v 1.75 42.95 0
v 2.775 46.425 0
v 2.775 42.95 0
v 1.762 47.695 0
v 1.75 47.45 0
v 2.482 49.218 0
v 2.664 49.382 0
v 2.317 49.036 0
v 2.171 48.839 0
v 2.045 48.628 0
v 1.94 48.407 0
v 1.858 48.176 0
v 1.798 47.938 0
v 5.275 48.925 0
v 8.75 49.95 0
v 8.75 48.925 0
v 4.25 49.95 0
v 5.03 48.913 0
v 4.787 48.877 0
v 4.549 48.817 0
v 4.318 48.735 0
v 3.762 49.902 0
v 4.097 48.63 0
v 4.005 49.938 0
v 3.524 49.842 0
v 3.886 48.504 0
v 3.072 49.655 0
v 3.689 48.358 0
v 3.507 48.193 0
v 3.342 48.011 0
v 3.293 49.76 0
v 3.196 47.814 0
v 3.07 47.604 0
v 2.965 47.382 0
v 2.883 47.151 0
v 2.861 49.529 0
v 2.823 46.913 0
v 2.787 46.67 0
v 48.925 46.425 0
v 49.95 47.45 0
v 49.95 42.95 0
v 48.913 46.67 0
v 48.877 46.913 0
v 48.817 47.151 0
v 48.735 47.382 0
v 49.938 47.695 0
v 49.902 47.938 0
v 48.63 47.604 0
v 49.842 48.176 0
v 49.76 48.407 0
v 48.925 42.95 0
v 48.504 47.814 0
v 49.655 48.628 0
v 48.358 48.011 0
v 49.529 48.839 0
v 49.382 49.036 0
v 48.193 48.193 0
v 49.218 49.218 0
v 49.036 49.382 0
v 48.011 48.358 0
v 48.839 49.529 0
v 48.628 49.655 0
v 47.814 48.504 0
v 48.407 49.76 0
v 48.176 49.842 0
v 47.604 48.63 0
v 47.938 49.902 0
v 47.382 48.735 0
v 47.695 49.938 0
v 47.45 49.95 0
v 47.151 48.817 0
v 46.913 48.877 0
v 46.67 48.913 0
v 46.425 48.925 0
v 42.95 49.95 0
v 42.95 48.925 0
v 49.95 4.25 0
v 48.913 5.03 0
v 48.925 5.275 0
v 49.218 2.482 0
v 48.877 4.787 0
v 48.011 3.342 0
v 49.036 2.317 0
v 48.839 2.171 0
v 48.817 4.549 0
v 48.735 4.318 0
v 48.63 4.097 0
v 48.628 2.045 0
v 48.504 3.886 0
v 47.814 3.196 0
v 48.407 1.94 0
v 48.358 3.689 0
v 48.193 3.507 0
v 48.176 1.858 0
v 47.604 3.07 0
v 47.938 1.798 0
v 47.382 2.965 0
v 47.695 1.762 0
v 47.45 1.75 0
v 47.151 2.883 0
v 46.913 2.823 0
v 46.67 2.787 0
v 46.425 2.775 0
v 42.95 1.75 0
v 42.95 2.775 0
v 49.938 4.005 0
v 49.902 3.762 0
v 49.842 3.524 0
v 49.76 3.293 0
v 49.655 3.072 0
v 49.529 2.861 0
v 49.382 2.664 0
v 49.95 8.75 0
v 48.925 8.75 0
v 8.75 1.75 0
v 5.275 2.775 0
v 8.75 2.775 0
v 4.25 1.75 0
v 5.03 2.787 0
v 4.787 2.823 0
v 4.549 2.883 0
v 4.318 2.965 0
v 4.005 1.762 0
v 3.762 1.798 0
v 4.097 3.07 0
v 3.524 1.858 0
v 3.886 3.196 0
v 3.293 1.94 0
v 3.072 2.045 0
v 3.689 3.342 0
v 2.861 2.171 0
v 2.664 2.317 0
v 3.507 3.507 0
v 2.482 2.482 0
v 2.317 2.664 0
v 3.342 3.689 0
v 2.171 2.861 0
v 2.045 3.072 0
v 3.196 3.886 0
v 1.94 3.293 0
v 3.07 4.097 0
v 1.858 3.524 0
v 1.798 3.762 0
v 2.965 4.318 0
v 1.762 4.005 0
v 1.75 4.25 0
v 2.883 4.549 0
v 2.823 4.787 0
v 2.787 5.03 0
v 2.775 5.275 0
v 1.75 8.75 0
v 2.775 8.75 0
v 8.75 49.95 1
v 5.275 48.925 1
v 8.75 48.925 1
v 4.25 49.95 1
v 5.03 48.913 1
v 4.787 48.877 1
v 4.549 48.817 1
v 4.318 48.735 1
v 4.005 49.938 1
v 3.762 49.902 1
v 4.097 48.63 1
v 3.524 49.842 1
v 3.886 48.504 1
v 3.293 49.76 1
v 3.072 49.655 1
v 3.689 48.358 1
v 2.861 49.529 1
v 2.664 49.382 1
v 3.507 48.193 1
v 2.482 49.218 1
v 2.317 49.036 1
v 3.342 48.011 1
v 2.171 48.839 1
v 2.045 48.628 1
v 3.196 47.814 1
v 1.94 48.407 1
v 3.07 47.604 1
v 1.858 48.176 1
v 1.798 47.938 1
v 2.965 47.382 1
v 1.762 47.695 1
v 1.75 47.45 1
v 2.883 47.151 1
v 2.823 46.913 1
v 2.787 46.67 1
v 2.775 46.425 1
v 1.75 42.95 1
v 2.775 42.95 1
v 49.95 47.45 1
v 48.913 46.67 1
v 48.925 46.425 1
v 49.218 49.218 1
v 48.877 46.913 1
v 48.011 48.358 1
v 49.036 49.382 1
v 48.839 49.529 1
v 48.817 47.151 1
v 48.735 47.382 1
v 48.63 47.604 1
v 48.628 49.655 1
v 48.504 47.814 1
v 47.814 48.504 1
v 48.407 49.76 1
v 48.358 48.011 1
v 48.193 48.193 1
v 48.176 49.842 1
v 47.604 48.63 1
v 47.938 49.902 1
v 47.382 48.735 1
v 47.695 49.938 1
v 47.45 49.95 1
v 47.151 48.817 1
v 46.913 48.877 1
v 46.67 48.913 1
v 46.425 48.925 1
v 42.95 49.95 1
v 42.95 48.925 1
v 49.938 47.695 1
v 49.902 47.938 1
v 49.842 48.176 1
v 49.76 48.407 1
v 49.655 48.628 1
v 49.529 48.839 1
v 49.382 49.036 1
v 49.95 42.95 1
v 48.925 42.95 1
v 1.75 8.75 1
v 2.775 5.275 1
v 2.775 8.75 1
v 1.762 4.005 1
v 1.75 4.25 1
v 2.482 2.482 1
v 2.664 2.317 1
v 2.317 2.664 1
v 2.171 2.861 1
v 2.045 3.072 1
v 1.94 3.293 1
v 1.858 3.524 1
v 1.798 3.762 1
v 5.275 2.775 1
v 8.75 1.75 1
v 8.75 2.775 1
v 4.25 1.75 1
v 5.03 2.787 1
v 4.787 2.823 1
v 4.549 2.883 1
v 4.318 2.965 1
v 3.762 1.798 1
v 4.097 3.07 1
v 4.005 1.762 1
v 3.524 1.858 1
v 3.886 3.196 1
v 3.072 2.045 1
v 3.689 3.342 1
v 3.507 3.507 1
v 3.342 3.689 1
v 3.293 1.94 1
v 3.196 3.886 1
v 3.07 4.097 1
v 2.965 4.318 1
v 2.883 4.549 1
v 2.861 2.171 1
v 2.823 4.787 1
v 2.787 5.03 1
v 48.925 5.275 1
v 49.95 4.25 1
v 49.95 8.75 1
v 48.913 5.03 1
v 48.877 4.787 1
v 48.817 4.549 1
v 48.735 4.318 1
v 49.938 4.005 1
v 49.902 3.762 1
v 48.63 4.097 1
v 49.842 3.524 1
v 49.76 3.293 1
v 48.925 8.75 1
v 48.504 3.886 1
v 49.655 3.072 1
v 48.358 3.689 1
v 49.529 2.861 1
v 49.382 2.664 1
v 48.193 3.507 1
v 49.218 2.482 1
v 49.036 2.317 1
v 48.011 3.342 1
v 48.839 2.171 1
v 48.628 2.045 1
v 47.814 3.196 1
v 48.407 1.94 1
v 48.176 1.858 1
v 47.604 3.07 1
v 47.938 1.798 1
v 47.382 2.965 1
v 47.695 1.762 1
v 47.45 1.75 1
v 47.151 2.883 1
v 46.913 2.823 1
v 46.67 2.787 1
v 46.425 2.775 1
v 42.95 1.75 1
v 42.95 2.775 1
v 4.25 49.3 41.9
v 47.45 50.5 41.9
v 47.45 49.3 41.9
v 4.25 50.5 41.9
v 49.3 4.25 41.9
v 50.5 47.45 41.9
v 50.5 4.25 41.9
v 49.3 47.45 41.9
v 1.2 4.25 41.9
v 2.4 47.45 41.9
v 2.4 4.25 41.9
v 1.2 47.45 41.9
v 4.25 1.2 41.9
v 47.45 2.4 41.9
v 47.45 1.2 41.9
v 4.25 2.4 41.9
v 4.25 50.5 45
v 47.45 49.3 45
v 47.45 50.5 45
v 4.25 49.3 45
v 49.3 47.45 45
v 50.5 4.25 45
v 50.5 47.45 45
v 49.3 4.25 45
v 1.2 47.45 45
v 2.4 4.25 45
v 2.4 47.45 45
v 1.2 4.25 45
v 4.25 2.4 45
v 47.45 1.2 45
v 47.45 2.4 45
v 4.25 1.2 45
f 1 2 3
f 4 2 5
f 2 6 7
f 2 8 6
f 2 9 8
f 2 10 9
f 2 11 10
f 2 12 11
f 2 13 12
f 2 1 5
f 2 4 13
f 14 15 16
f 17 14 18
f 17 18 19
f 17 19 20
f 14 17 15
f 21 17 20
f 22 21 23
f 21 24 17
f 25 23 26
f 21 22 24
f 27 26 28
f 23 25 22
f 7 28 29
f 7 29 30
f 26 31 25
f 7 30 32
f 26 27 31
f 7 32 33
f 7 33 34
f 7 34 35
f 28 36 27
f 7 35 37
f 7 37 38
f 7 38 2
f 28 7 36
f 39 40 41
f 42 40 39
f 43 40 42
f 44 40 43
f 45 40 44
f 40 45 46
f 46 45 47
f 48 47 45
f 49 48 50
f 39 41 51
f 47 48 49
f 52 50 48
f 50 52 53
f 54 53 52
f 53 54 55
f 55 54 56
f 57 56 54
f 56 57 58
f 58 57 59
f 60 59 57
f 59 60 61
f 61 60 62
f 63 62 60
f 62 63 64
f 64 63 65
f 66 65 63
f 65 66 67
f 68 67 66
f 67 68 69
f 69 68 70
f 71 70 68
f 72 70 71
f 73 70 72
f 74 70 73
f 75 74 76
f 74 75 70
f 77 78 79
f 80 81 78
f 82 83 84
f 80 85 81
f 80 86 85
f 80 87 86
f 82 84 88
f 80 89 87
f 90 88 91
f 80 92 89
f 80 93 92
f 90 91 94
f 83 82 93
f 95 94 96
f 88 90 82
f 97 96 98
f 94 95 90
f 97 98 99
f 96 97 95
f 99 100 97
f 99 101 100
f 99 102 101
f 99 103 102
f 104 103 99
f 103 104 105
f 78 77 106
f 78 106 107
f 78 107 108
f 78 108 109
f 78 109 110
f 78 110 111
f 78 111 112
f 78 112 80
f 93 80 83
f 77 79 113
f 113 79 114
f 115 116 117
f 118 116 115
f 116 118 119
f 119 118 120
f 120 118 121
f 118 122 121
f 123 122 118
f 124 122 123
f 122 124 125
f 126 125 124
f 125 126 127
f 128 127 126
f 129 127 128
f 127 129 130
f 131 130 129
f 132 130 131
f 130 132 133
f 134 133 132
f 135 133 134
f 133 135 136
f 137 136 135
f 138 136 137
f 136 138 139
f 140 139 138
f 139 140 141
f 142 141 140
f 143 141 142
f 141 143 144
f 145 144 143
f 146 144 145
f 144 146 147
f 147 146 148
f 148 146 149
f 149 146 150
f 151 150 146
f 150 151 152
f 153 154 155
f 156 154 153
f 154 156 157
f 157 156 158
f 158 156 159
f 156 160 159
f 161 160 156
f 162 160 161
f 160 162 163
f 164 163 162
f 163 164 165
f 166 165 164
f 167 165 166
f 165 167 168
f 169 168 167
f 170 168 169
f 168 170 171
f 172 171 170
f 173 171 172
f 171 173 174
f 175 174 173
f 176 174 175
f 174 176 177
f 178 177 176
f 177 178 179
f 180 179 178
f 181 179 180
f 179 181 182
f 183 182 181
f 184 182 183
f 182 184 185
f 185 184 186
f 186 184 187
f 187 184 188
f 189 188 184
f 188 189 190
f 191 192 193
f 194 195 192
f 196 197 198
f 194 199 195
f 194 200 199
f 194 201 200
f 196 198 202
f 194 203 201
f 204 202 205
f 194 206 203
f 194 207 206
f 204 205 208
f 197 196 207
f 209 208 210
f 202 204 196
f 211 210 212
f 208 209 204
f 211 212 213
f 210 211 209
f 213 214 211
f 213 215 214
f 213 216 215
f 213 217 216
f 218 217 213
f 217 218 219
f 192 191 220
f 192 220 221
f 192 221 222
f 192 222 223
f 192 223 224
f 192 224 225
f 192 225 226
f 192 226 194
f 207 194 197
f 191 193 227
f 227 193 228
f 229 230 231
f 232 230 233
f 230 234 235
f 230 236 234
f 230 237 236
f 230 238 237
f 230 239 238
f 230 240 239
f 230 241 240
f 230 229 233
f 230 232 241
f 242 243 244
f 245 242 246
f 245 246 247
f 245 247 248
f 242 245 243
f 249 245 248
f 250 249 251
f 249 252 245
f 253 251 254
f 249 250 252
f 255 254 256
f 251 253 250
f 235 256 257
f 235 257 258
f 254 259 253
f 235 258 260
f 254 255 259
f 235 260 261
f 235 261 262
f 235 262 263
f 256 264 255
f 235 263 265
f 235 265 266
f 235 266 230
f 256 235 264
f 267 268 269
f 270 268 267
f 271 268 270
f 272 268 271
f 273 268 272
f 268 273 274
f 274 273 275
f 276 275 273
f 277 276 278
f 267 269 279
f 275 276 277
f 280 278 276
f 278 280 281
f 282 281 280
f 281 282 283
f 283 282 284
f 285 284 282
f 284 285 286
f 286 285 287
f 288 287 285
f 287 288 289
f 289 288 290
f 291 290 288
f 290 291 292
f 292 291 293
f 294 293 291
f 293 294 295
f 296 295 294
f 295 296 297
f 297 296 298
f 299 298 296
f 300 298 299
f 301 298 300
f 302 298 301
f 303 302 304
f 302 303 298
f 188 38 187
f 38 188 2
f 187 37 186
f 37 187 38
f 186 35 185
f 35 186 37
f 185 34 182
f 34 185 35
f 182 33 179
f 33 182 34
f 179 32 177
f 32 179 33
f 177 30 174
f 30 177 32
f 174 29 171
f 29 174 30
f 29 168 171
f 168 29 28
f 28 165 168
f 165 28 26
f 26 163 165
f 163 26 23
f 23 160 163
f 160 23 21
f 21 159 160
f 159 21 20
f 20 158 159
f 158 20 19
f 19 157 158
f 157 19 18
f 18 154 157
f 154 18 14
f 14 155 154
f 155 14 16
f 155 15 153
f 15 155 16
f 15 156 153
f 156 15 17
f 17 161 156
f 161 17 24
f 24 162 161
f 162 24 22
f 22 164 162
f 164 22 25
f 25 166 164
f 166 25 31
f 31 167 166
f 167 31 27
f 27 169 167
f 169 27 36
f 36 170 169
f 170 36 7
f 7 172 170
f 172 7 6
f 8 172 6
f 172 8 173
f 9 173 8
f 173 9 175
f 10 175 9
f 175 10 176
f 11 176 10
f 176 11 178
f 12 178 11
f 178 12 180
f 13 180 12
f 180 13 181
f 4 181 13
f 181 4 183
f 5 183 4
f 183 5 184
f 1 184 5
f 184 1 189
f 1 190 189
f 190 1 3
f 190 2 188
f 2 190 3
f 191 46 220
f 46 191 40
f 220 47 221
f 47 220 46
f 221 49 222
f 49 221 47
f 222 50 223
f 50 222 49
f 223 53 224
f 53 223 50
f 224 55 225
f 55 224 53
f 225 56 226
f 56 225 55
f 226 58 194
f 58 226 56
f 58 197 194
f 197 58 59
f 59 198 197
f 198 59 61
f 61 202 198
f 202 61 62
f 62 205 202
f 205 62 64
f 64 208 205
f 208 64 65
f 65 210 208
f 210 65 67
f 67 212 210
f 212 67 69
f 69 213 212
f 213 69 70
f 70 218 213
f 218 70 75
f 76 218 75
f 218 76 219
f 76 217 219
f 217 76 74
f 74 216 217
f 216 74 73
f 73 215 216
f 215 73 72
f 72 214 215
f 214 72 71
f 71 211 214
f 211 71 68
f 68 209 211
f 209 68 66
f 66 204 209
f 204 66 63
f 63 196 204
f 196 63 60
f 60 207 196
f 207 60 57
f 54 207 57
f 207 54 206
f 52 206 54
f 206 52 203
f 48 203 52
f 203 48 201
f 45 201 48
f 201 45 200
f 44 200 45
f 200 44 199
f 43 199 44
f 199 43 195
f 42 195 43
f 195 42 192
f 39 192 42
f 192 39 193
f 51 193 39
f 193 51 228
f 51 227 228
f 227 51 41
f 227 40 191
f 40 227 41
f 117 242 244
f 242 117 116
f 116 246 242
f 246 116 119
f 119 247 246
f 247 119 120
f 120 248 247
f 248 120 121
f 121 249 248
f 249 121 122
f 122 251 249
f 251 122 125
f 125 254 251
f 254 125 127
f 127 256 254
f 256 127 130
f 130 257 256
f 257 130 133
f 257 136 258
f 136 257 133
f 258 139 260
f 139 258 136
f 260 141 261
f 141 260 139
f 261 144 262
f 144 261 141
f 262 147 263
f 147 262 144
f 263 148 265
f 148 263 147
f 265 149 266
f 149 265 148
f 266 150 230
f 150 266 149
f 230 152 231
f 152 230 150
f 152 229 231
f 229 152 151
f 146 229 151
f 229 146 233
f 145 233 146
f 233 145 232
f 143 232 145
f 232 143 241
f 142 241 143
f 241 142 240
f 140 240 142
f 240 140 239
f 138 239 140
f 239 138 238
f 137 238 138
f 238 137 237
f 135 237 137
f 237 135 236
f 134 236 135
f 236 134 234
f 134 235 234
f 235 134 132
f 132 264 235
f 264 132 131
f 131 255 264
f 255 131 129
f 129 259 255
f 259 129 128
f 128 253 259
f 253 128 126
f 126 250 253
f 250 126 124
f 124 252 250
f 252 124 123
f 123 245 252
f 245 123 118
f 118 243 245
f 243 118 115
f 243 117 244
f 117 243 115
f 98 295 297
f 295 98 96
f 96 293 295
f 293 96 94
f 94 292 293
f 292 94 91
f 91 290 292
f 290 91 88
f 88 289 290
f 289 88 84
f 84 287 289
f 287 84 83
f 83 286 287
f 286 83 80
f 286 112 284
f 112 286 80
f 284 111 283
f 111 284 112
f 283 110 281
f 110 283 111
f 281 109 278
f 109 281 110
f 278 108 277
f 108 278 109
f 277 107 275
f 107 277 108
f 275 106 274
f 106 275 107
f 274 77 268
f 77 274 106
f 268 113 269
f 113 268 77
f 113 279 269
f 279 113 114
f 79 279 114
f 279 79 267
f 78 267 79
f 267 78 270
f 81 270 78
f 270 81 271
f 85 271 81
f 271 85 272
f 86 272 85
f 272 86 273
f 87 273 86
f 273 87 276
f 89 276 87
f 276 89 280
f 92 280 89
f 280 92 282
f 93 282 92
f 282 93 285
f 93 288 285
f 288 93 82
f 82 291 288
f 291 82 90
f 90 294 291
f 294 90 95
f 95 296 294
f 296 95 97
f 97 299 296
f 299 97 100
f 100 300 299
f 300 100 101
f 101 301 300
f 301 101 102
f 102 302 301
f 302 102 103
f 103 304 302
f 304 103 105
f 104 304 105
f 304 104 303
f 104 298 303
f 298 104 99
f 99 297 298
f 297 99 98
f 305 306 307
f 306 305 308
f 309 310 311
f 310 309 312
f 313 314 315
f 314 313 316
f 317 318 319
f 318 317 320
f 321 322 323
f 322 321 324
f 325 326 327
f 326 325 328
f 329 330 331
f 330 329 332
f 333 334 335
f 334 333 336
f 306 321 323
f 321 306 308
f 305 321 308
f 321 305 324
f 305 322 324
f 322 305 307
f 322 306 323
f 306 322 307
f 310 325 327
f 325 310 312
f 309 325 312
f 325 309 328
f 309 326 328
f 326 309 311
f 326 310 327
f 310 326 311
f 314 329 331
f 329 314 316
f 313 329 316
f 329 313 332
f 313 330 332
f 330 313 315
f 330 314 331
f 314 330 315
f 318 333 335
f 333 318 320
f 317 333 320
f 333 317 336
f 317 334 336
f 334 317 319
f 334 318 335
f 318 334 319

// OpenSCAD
module GridSegment(){
  translate([25.85, 25.85, 0])union(){
      translate([0, 0, -1.002])%linear_extrude(height=1)union(){
            translate([-25.85, -25.85, 0])square([51.7, 51.7]);
            translate([-25.85, -25.85, 0])square([51.7, 51.7]);
          }

      translate([0, 0, 45])%linear_extrude(height=1)union(){
            translate([-25.85, -25.85, 0])square([51.7, 51.7]);
            translate([-25.85, -25.85, 0])square([51.7, 51.7]);
          }

      color("red")linear_extrude(height=1)union(){
            difference(){
              translate([-24.1, -24.1, 0])union()translate([2.5, 2.5, 0])hull(){
                      circle(d=5,$fn=64);
                      translate([43.2, 0, 0])circle(d=5,$fn=64);
                      translate([0, 43.2, 0])circle(d=5,$fn=64);
                      translate([43.2, 43.2, 0])circle(d=5,$fn=64);
                    }

              translate([-23.075, -23.075, 0])union()translate([2.5, 2.5, 0])hull(){
                      circle(d=5,$fn=64);
                      translate([41.15, 0, 0])circle(d=5,$fn=64);
                      translate([0, 41.15, 0])circle(d=5,$fn=64);
                      translate([41.15, 41.15, 0])circle(d=5,$fn=64);
                    }

              translate([-17.1, -25.85, 0])square([34.2, 51.7]);
              translate([-25.85, -17.1, 0])square([51.7, 34.2]);
            }

            difference(){
              translate([-24.1, -24.1, 0])union()translate([2.5, 2.5, 0])hull(){
                      circle(d=5,$fn=64);
                      translate([43.2, 0, 0])circle(d=5,$fn=64);
                      translate([0, 43.2, 0])circle(d=5,$fn=64);
                      translate([43.2, 43.2, 0])circle(d=5,$fn=64);
                    }

              translate([-23.075, -23.075, 0])union()translate([2.5, 2.5, 0])hull(){
                      circle(d=5,$fn=64);
                      translate([41.15, 0, 0])circle(d=5,$fn=64);
                      translate([0, 41.15, 0])circle(d=5,$fn=64);
                      translate([41.15, 41.15, 0])circle(d=5,$fn=64);
                    }

              translate([-17.1, -25.85, 0])square([34.2, 51.7]);
              translate([-25.85, -17.1, 0])square([51.7, 34.2]);
            }

          }

      translate([0, 0, 41.9])color("blue")linear_extrude(height=3.1)union(){
              translate([-21.6, 23.45, 0])square([43.2, 1.2]);
              translate([-21.6, -24.65, 0])square([43.2, 1.2]);
              translate([23.45, -21.6, 0])square([1.2, 43.2]);
              translate([-24.65, -21.6, 0])square([1.2, 43.2]);
              union(){
                translate([-21.6, 23.45, 0])square([43.2, 1.2]);
                translate([-21.6, -24.65, 0])square([43.2, 1.2]);
                translate([23.45, -21.6, 0])square([1.2, 43.2]);
                translate([-24.65, -21.6, 0])square([1.2, 43.2]);
              }

            }

    }
}
$fn=64;
GridSegment();
